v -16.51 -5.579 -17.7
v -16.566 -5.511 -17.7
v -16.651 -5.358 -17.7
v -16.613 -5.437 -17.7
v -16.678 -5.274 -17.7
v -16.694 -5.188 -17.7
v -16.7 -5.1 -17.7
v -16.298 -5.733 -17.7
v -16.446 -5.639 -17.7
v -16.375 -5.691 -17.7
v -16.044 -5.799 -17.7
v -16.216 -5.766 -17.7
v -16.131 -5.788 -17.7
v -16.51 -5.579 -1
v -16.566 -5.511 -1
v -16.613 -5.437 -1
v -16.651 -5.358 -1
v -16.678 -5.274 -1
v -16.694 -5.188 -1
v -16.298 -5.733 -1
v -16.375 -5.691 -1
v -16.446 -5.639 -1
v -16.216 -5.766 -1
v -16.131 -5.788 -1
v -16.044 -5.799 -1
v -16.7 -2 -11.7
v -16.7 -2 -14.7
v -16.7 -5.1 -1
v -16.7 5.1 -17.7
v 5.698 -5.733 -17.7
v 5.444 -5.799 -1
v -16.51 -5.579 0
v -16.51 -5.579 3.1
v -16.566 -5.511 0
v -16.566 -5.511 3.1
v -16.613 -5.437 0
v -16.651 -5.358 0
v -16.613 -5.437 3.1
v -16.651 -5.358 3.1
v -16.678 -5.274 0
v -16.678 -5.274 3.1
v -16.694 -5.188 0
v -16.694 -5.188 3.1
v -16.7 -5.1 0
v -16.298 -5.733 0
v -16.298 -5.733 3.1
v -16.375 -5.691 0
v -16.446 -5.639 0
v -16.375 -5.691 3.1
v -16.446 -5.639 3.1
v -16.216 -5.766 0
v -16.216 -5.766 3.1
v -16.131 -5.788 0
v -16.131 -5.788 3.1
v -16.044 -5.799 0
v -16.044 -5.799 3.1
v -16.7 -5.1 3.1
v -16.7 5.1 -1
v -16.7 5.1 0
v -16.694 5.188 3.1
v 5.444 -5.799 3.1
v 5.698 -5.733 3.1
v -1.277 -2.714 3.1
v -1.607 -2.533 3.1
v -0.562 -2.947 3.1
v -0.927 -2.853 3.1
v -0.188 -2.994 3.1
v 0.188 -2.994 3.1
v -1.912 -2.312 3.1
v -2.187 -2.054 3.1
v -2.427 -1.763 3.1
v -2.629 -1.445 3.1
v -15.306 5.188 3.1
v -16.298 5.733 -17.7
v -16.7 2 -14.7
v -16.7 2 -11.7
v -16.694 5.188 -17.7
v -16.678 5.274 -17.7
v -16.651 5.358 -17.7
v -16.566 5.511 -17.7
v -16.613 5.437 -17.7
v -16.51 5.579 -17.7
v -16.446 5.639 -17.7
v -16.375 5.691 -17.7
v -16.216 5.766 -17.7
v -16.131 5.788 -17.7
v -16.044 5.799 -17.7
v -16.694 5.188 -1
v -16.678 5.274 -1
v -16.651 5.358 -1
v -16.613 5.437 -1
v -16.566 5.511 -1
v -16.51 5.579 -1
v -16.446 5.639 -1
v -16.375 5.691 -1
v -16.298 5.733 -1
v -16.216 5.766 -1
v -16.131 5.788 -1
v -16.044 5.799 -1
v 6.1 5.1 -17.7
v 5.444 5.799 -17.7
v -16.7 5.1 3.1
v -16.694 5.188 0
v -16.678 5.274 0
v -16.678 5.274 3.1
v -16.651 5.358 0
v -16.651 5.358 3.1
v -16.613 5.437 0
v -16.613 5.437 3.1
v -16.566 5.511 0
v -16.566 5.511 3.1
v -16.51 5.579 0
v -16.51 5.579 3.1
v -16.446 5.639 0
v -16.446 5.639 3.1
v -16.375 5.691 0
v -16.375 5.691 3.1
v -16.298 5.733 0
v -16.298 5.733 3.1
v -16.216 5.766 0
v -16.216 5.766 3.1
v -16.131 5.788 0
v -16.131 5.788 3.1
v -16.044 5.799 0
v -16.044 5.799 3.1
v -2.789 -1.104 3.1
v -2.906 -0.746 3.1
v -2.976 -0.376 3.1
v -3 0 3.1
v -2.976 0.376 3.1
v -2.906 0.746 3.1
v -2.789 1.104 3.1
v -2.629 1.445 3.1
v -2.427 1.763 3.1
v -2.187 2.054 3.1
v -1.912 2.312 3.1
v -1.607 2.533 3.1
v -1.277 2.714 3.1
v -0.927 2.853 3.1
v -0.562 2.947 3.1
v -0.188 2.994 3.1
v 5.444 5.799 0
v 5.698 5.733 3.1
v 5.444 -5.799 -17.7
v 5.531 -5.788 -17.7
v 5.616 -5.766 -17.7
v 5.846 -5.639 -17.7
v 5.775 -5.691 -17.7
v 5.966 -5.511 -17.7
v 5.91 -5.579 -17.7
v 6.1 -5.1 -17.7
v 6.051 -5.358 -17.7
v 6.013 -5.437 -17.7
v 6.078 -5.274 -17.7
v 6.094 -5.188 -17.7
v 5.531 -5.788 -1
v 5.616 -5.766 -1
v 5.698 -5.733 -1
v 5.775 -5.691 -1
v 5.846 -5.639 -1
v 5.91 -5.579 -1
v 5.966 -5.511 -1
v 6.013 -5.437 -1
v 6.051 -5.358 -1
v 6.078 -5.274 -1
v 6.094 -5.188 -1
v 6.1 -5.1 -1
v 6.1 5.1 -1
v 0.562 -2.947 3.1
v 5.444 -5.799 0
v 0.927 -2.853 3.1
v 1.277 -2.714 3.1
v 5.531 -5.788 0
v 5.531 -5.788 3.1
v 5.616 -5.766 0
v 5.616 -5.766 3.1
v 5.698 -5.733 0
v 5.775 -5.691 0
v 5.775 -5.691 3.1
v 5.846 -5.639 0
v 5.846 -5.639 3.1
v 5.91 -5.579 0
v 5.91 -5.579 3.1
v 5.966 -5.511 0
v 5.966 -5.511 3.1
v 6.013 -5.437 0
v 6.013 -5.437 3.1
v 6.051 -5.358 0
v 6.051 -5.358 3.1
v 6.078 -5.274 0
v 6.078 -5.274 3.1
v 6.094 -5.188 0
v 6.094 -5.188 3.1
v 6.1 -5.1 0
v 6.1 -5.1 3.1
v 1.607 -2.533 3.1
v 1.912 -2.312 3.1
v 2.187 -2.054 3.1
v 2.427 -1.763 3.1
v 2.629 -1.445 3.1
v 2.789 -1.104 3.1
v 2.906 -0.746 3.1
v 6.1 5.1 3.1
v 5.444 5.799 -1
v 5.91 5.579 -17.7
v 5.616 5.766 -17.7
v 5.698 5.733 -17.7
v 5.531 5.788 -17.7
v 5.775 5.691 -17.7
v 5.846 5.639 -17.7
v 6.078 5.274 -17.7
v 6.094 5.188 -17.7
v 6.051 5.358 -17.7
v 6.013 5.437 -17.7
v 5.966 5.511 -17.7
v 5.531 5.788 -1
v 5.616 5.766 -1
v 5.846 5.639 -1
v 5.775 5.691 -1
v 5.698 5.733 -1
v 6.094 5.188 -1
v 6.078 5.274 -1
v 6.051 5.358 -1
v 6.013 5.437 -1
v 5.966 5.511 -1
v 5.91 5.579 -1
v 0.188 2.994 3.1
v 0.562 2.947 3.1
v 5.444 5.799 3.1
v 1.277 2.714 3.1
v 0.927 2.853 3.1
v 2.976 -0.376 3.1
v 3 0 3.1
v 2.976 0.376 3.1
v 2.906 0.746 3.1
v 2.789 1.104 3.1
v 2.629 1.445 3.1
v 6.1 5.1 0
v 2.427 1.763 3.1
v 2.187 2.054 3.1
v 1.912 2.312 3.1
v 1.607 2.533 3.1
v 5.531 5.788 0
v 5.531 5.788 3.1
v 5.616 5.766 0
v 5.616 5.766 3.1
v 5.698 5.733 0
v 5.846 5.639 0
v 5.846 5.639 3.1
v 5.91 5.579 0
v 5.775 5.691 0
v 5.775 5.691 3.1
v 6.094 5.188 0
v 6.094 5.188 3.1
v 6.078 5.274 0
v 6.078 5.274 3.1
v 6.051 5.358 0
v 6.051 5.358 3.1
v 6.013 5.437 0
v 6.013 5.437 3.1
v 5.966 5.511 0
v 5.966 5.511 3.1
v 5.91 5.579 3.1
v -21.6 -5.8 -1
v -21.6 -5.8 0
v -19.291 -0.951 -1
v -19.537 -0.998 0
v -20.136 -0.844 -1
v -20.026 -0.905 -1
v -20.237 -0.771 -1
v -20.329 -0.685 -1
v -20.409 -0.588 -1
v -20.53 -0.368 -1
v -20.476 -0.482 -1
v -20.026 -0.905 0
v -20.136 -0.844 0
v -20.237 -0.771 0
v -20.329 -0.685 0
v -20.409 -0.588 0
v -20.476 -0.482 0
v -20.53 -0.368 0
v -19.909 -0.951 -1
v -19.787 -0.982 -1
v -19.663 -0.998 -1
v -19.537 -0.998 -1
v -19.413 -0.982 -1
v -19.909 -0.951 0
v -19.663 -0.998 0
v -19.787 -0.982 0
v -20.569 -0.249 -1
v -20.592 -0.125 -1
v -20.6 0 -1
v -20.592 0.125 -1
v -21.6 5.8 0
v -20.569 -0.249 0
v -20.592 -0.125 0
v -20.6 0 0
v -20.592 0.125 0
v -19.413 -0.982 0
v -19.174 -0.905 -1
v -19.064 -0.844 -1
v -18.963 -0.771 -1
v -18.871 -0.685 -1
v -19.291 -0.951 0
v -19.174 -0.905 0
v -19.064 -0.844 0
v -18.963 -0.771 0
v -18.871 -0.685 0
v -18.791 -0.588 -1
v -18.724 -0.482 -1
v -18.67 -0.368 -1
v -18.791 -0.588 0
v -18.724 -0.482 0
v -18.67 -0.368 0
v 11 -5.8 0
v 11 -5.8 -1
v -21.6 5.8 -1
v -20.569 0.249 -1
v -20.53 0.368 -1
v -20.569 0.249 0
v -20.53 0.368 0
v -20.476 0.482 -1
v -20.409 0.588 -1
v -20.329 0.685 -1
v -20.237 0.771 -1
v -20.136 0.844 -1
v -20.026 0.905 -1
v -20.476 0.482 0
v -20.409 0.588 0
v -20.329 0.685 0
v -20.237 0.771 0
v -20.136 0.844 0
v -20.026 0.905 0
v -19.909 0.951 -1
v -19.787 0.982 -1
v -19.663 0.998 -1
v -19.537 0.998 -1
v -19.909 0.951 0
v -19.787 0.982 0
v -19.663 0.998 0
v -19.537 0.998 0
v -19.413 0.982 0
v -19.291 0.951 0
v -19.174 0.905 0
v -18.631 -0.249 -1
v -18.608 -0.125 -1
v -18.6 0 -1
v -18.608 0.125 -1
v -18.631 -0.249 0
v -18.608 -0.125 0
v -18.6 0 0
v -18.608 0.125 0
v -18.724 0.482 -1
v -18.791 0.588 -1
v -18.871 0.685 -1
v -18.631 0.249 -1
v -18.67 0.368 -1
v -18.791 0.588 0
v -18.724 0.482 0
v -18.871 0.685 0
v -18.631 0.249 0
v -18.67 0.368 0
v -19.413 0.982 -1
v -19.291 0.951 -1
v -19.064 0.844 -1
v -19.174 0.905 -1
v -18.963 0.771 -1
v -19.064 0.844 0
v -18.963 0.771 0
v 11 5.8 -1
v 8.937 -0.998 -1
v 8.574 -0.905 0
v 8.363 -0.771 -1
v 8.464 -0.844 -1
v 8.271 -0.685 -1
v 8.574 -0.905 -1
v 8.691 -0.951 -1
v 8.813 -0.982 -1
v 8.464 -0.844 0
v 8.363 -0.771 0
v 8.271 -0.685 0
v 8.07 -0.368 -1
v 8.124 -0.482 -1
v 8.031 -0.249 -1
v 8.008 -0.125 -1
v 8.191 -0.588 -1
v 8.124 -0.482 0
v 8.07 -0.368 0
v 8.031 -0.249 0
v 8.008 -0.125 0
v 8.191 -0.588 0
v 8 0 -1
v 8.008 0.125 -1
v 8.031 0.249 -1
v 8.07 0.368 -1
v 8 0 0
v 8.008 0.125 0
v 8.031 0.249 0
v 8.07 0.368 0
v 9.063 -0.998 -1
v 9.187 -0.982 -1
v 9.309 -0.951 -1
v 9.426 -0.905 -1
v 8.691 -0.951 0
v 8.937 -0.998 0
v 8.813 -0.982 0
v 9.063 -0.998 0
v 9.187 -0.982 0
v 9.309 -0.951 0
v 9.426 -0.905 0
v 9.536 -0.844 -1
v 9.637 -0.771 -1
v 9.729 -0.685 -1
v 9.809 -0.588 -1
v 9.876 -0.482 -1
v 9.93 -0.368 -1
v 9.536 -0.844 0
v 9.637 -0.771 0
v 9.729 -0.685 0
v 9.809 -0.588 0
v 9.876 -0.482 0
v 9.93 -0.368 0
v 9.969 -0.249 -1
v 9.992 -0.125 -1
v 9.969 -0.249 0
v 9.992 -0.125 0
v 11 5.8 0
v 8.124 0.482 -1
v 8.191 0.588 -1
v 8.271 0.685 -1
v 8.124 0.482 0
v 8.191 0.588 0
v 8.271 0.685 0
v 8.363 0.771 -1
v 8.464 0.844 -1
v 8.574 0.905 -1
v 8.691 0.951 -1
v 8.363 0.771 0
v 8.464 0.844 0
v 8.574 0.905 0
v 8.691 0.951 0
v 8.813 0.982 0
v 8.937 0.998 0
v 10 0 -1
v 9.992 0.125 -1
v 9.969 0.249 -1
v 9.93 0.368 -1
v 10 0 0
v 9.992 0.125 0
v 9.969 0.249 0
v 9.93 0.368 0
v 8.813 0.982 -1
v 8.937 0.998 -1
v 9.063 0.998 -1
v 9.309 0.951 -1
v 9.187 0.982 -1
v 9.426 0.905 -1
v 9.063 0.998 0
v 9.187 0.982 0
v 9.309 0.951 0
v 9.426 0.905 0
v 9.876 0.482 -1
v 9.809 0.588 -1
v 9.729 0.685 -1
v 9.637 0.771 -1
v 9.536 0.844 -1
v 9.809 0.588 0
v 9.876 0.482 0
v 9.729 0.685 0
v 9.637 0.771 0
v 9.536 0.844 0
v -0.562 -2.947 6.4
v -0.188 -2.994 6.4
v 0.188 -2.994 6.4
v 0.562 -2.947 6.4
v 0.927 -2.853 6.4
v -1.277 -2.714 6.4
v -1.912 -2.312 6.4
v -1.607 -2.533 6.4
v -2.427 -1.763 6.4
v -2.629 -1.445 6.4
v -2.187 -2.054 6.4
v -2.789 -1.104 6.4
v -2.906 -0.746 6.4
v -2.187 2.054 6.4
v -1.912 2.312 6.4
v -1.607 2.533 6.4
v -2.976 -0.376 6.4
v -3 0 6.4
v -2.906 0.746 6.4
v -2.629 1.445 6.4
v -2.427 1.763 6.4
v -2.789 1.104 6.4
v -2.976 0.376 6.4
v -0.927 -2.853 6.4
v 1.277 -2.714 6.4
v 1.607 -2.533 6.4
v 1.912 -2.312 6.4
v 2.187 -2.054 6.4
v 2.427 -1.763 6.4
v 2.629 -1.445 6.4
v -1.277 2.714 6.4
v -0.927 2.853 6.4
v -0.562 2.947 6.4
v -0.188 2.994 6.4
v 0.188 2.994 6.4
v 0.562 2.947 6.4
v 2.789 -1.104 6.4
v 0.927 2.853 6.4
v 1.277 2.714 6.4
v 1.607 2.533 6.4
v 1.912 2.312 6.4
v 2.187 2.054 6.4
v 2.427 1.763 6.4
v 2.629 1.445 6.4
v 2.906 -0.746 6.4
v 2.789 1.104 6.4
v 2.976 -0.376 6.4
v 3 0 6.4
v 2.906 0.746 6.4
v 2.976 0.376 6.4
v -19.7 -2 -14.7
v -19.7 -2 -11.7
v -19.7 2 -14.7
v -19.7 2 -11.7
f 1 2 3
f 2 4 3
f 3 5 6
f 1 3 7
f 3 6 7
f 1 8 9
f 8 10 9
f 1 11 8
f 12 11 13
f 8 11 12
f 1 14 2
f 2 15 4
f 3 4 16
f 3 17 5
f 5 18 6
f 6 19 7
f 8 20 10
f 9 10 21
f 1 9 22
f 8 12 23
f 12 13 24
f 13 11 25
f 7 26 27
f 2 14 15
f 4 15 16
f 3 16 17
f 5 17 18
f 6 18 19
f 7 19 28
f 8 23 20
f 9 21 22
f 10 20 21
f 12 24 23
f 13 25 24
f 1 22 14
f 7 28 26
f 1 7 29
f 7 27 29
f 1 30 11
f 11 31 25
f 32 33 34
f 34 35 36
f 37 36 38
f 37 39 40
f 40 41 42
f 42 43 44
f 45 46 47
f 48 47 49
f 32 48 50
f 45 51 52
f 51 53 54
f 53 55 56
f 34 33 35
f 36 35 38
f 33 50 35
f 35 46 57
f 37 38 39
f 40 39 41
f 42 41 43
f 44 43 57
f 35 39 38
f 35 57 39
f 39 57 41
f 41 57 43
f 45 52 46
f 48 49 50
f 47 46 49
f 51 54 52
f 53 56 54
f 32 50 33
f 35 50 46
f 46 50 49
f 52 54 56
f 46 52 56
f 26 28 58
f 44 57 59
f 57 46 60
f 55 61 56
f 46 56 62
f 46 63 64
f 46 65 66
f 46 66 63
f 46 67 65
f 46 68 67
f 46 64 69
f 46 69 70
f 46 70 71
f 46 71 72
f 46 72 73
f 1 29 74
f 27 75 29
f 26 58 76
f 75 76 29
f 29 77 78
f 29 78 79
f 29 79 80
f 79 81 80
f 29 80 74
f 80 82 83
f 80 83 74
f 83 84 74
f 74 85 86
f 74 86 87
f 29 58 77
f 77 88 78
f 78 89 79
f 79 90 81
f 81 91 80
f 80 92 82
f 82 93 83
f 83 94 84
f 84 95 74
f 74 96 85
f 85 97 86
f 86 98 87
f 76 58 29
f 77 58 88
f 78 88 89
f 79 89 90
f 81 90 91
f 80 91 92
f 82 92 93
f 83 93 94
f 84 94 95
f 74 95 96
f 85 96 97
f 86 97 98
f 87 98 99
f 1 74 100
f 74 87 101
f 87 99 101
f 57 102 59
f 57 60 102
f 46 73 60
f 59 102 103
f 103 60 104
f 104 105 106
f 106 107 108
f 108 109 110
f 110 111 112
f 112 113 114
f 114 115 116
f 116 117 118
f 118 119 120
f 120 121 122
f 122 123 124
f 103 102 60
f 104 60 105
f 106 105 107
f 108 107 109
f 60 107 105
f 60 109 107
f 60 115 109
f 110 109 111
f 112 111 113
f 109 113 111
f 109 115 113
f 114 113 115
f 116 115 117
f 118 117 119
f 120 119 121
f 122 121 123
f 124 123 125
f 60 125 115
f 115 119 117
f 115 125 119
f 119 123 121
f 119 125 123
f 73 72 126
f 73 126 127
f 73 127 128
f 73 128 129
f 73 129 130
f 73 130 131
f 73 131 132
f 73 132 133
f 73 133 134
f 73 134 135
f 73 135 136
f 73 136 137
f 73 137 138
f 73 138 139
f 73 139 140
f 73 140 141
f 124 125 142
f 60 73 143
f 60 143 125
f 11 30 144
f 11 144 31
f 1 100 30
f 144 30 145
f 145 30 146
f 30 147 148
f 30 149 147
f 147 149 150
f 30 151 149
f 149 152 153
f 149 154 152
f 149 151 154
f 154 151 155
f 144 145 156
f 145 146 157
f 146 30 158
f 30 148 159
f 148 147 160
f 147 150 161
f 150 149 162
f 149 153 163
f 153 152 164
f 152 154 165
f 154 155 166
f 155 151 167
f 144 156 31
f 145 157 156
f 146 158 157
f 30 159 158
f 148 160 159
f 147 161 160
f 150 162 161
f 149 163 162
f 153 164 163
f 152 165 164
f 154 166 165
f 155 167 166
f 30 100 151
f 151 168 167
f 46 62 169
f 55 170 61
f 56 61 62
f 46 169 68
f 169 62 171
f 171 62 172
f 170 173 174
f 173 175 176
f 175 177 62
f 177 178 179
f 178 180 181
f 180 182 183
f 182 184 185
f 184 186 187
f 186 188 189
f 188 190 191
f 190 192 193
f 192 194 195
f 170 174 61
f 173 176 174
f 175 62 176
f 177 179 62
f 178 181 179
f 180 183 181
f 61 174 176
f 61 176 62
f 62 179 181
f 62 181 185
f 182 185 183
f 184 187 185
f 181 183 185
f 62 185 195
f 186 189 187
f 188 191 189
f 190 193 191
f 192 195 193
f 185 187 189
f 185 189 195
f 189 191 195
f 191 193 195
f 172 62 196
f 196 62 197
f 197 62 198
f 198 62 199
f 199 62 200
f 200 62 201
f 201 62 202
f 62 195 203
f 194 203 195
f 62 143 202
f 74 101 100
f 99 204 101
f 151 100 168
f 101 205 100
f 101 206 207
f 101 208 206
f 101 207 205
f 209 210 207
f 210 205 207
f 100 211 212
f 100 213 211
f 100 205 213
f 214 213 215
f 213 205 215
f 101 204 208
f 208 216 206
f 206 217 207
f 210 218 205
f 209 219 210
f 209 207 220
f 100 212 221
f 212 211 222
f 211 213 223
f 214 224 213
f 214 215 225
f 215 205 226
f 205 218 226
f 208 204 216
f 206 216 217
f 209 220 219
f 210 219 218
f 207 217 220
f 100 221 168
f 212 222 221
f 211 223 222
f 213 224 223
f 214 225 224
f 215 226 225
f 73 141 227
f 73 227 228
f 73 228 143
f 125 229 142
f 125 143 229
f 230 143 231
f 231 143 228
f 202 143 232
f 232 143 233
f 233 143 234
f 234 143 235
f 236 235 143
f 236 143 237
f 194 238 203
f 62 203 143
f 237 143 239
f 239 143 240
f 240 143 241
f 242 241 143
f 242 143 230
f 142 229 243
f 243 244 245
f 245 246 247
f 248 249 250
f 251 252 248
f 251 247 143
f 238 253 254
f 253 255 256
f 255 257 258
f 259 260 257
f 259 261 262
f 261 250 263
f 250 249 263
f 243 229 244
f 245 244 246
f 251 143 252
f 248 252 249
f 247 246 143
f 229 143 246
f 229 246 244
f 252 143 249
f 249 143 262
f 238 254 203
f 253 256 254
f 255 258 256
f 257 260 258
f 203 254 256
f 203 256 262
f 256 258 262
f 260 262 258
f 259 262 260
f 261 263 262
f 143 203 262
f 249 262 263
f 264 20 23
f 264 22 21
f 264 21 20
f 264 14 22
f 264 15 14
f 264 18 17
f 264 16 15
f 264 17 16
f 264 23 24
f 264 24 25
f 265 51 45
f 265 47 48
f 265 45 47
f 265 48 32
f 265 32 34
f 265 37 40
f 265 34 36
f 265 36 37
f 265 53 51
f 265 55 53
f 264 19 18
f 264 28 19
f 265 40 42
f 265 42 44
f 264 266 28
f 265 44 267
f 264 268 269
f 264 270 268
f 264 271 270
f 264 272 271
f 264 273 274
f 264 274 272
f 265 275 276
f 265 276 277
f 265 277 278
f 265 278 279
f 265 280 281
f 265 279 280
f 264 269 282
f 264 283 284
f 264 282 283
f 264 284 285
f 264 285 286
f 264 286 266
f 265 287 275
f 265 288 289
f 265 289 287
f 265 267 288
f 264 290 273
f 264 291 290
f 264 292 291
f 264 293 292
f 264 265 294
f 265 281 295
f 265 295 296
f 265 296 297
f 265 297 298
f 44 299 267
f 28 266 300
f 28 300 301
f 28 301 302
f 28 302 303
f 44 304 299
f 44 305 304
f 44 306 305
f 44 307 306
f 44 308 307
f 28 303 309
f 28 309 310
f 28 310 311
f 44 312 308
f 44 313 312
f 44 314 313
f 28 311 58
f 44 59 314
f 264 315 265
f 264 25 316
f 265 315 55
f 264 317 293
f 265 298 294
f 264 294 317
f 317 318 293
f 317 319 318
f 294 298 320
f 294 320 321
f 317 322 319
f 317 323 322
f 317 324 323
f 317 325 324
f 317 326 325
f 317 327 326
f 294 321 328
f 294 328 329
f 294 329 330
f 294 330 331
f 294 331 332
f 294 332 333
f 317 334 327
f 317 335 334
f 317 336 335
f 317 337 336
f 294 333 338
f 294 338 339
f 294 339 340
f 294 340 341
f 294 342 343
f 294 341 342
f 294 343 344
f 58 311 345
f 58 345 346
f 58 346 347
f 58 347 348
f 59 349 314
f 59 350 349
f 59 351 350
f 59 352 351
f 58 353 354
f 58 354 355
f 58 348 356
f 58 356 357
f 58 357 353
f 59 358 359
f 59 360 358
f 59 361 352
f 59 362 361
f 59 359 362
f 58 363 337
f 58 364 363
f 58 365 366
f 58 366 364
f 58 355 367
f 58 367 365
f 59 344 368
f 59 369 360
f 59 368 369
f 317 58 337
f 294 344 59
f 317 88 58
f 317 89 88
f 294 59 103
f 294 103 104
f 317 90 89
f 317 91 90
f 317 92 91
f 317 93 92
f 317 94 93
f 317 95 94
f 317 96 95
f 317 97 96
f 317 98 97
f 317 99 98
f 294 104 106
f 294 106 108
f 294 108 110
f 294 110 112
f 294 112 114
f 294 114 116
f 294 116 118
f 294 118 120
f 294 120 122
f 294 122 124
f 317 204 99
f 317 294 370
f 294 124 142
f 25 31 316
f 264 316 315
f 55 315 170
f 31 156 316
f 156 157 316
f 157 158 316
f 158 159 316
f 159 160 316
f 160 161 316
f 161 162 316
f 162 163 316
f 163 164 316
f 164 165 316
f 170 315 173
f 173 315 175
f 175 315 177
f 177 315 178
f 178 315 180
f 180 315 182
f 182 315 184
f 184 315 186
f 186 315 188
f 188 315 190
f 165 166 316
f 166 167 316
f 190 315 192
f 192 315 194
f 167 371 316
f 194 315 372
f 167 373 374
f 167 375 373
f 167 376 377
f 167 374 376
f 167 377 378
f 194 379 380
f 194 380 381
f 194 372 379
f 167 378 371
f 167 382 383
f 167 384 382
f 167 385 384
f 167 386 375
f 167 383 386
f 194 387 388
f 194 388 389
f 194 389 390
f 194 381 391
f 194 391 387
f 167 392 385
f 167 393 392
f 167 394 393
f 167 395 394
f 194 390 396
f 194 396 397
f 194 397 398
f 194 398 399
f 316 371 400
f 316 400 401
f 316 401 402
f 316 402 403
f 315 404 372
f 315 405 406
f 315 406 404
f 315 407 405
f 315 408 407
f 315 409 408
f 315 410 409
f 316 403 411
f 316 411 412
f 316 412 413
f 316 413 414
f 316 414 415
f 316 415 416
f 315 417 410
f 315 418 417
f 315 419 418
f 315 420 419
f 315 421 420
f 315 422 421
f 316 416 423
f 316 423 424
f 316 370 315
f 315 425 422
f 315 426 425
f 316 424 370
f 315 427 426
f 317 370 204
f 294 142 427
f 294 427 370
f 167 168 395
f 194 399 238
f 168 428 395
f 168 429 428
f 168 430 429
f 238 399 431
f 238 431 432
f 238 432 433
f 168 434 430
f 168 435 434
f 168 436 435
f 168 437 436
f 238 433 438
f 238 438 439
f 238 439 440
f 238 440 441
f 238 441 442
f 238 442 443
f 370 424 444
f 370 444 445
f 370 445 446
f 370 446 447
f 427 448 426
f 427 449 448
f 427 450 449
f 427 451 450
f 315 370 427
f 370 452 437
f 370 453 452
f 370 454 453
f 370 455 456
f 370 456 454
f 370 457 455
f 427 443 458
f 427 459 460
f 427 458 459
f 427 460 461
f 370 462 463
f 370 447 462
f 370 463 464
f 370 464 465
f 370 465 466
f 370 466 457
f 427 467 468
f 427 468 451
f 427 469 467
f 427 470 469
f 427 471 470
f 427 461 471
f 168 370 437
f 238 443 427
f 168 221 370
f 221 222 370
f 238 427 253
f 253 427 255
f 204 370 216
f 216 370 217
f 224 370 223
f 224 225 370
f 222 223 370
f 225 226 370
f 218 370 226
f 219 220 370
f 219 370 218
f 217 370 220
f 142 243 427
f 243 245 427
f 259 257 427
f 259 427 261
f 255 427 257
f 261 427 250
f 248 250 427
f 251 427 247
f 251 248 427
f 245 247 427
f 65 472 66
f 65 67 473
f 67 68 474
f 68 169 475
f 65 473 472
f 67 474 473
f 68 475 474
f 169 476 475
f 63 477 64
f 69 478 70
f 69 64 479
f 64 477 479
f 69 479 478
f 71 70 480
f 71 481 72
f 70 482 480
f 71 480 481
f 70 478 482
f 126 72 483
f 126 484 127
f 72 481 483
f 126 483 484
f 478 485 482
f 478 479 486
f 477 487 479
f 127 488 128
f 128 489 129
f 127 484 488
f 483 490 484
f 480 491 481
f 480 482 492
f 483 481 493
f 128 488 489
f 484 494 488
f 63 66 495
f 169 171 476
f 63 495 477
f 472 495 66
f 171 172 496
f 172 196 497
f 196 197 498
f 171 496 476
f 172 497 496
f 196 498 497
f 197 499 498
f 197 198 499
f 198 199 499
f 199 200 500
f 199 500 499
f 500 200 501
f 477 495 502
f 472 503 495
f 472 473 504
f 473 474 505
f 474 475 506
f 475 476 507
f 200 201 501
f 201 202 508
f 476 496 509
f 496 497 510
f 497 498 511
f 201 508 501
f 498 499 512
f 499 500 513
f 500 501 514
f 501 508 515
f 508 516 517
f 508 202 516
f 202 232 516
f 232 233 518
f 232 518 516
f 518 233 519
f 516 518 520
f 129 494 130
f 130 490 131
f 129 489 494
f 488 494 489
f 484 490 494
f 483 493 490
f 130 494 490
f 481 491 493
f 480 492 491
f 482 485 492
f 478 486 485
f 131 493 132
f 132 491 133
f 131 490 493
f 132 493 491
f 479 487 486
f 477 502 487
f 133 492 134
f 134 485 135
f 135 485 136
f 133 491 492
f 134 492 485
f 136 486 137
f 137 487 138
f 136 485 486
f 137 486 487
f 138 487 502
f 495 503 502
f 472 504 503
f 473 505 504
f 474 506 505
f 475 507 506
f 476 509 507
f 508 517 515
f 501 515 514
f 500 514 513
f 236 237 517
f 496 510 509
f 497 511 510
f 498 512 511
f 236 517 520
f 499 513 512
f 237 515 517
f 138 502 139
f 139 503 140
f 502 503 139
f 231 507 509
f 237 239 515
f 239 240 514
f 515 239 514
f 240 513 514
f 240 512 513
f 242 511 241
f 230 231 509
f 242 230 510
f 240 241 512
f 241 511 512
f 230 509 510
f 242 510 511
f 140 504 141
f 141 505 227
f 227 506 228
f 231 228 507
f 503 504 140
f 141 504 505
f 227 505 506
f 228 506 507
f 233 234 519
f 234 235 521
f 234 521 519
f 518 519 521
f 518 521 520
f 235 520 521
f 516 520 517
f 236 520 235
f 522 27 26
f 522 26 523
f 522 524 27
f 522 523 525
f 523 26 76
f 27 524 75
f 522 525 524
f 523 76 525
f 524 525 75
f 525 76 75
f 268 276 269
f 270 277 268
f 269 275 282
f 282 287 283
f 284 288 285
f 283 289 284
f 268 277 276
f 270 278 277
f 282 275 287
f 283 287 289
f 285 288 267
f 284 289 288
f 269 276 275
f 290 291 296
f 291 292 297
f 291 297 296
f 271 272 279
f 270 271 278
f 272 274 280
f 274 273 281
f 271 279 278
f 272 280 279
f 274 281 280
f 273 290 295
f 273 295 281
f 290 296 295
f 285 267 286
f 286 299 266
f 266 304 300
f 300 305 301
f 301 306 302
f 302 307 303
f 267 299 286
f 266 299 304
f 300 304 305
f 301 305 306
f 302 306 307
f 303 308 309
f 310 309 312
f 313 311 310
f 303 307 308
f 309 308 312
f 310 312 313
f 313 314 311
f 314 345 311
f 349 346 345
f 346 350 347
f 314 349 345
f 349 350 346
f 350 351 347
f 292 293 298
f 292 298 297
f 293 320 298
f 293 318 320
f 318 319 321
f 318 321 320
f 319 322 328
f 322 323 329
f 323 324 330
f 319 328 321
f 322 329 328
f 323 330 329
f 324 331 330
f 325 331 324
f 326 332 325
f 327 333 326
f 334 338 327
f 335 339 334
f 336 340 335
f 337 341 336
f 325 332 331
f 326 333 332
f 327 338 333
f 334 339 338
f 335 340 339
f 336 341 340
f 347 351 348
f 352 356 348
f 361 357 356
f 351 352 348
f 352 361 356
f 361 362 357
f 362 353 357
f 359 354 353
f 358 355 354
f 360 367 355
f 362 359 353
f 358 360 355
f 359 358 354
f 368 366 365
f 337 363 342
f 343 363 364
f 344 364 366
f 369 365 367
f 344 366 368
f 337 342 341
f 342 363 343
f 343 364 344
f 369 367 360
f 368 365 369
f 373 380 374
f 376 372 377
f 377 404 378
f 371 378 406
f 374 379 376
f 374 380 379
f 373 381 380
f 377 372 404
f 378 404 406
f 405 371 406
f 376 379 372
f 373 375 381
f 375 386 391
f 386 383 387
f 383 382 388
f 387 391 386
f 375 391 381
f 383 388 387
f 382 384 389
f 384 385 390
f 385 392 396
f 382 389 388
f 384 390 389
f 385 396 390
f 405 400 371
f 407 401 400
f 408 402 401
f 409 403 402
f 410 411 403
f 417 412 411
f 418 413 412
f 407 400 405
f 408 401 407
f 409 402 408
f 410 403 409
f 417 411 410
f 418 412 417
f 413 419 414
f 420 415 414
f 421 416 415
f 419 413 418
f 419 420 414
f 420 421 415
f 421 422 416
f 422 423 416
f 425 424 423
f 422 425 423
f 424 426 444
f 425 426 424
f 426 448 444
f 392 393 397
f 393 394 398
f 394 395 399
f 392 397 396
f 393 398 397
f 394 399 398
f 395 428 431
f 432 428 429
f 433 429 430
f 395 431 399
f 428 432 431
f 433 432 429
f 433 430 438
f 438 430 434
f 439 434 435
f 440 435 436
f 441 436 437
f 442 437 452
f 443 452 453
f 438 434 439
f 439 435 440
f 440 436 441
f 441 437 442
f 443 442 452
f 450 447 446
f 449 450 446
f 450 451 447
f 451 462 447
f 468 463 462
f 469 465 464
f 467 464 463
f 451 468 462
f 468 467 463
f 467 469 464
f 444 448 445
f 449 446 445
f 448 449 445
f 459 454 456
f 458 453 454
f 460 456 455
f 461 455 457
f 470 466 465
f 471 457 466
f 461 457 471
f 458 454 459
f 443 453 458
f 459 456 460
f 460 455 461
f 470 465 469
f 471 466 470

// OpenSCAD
$fn = 50;

difference() {
	union() {
		translate(v = [-5.300000000000001, 0, -17.7]) {
			hull() {
				translate(v = [-10.700000000000001, 5.1, 0]) {
					cylinder(h = 20.8, r = 0.7);
				}
				translate(v = [10.700000000000001, 5.1, 0]) {
					cylinder(h = 20.8, r = 0.7);
				}
				translate(v = [-10.700000000000001, -5.1, 0]) {
					cylinder(h = 20.8, r = 0.7);
				}
				translate(v = [10.700000000000001, -5.1, 0]) {
					cylinder(h = 20.8, r = 0.7);
				}
			}
		}
		translate(v = [-21.6, -5.8, -1]) {
			cube(size = [32.6, 11.6, 1]);
		}
		translate(v = [0, 0, 3.1]) {
			cylinder(h = 3.3000000000000003, r = 3.0);
		}
		translate(v = [-19.700000000000003, -2.0, -14.7]) {
			cube(size = [4, 4, 3]);
		}
	}
	union() {
		translate(v = [-19.6, 0, -4]) {
			cylinder(h = 5, r = 1.0);
		}
		translate(v = [9.0, 0, -4]) {
			cylinder(h = 5, r = 1.0);
		}
	}
}
